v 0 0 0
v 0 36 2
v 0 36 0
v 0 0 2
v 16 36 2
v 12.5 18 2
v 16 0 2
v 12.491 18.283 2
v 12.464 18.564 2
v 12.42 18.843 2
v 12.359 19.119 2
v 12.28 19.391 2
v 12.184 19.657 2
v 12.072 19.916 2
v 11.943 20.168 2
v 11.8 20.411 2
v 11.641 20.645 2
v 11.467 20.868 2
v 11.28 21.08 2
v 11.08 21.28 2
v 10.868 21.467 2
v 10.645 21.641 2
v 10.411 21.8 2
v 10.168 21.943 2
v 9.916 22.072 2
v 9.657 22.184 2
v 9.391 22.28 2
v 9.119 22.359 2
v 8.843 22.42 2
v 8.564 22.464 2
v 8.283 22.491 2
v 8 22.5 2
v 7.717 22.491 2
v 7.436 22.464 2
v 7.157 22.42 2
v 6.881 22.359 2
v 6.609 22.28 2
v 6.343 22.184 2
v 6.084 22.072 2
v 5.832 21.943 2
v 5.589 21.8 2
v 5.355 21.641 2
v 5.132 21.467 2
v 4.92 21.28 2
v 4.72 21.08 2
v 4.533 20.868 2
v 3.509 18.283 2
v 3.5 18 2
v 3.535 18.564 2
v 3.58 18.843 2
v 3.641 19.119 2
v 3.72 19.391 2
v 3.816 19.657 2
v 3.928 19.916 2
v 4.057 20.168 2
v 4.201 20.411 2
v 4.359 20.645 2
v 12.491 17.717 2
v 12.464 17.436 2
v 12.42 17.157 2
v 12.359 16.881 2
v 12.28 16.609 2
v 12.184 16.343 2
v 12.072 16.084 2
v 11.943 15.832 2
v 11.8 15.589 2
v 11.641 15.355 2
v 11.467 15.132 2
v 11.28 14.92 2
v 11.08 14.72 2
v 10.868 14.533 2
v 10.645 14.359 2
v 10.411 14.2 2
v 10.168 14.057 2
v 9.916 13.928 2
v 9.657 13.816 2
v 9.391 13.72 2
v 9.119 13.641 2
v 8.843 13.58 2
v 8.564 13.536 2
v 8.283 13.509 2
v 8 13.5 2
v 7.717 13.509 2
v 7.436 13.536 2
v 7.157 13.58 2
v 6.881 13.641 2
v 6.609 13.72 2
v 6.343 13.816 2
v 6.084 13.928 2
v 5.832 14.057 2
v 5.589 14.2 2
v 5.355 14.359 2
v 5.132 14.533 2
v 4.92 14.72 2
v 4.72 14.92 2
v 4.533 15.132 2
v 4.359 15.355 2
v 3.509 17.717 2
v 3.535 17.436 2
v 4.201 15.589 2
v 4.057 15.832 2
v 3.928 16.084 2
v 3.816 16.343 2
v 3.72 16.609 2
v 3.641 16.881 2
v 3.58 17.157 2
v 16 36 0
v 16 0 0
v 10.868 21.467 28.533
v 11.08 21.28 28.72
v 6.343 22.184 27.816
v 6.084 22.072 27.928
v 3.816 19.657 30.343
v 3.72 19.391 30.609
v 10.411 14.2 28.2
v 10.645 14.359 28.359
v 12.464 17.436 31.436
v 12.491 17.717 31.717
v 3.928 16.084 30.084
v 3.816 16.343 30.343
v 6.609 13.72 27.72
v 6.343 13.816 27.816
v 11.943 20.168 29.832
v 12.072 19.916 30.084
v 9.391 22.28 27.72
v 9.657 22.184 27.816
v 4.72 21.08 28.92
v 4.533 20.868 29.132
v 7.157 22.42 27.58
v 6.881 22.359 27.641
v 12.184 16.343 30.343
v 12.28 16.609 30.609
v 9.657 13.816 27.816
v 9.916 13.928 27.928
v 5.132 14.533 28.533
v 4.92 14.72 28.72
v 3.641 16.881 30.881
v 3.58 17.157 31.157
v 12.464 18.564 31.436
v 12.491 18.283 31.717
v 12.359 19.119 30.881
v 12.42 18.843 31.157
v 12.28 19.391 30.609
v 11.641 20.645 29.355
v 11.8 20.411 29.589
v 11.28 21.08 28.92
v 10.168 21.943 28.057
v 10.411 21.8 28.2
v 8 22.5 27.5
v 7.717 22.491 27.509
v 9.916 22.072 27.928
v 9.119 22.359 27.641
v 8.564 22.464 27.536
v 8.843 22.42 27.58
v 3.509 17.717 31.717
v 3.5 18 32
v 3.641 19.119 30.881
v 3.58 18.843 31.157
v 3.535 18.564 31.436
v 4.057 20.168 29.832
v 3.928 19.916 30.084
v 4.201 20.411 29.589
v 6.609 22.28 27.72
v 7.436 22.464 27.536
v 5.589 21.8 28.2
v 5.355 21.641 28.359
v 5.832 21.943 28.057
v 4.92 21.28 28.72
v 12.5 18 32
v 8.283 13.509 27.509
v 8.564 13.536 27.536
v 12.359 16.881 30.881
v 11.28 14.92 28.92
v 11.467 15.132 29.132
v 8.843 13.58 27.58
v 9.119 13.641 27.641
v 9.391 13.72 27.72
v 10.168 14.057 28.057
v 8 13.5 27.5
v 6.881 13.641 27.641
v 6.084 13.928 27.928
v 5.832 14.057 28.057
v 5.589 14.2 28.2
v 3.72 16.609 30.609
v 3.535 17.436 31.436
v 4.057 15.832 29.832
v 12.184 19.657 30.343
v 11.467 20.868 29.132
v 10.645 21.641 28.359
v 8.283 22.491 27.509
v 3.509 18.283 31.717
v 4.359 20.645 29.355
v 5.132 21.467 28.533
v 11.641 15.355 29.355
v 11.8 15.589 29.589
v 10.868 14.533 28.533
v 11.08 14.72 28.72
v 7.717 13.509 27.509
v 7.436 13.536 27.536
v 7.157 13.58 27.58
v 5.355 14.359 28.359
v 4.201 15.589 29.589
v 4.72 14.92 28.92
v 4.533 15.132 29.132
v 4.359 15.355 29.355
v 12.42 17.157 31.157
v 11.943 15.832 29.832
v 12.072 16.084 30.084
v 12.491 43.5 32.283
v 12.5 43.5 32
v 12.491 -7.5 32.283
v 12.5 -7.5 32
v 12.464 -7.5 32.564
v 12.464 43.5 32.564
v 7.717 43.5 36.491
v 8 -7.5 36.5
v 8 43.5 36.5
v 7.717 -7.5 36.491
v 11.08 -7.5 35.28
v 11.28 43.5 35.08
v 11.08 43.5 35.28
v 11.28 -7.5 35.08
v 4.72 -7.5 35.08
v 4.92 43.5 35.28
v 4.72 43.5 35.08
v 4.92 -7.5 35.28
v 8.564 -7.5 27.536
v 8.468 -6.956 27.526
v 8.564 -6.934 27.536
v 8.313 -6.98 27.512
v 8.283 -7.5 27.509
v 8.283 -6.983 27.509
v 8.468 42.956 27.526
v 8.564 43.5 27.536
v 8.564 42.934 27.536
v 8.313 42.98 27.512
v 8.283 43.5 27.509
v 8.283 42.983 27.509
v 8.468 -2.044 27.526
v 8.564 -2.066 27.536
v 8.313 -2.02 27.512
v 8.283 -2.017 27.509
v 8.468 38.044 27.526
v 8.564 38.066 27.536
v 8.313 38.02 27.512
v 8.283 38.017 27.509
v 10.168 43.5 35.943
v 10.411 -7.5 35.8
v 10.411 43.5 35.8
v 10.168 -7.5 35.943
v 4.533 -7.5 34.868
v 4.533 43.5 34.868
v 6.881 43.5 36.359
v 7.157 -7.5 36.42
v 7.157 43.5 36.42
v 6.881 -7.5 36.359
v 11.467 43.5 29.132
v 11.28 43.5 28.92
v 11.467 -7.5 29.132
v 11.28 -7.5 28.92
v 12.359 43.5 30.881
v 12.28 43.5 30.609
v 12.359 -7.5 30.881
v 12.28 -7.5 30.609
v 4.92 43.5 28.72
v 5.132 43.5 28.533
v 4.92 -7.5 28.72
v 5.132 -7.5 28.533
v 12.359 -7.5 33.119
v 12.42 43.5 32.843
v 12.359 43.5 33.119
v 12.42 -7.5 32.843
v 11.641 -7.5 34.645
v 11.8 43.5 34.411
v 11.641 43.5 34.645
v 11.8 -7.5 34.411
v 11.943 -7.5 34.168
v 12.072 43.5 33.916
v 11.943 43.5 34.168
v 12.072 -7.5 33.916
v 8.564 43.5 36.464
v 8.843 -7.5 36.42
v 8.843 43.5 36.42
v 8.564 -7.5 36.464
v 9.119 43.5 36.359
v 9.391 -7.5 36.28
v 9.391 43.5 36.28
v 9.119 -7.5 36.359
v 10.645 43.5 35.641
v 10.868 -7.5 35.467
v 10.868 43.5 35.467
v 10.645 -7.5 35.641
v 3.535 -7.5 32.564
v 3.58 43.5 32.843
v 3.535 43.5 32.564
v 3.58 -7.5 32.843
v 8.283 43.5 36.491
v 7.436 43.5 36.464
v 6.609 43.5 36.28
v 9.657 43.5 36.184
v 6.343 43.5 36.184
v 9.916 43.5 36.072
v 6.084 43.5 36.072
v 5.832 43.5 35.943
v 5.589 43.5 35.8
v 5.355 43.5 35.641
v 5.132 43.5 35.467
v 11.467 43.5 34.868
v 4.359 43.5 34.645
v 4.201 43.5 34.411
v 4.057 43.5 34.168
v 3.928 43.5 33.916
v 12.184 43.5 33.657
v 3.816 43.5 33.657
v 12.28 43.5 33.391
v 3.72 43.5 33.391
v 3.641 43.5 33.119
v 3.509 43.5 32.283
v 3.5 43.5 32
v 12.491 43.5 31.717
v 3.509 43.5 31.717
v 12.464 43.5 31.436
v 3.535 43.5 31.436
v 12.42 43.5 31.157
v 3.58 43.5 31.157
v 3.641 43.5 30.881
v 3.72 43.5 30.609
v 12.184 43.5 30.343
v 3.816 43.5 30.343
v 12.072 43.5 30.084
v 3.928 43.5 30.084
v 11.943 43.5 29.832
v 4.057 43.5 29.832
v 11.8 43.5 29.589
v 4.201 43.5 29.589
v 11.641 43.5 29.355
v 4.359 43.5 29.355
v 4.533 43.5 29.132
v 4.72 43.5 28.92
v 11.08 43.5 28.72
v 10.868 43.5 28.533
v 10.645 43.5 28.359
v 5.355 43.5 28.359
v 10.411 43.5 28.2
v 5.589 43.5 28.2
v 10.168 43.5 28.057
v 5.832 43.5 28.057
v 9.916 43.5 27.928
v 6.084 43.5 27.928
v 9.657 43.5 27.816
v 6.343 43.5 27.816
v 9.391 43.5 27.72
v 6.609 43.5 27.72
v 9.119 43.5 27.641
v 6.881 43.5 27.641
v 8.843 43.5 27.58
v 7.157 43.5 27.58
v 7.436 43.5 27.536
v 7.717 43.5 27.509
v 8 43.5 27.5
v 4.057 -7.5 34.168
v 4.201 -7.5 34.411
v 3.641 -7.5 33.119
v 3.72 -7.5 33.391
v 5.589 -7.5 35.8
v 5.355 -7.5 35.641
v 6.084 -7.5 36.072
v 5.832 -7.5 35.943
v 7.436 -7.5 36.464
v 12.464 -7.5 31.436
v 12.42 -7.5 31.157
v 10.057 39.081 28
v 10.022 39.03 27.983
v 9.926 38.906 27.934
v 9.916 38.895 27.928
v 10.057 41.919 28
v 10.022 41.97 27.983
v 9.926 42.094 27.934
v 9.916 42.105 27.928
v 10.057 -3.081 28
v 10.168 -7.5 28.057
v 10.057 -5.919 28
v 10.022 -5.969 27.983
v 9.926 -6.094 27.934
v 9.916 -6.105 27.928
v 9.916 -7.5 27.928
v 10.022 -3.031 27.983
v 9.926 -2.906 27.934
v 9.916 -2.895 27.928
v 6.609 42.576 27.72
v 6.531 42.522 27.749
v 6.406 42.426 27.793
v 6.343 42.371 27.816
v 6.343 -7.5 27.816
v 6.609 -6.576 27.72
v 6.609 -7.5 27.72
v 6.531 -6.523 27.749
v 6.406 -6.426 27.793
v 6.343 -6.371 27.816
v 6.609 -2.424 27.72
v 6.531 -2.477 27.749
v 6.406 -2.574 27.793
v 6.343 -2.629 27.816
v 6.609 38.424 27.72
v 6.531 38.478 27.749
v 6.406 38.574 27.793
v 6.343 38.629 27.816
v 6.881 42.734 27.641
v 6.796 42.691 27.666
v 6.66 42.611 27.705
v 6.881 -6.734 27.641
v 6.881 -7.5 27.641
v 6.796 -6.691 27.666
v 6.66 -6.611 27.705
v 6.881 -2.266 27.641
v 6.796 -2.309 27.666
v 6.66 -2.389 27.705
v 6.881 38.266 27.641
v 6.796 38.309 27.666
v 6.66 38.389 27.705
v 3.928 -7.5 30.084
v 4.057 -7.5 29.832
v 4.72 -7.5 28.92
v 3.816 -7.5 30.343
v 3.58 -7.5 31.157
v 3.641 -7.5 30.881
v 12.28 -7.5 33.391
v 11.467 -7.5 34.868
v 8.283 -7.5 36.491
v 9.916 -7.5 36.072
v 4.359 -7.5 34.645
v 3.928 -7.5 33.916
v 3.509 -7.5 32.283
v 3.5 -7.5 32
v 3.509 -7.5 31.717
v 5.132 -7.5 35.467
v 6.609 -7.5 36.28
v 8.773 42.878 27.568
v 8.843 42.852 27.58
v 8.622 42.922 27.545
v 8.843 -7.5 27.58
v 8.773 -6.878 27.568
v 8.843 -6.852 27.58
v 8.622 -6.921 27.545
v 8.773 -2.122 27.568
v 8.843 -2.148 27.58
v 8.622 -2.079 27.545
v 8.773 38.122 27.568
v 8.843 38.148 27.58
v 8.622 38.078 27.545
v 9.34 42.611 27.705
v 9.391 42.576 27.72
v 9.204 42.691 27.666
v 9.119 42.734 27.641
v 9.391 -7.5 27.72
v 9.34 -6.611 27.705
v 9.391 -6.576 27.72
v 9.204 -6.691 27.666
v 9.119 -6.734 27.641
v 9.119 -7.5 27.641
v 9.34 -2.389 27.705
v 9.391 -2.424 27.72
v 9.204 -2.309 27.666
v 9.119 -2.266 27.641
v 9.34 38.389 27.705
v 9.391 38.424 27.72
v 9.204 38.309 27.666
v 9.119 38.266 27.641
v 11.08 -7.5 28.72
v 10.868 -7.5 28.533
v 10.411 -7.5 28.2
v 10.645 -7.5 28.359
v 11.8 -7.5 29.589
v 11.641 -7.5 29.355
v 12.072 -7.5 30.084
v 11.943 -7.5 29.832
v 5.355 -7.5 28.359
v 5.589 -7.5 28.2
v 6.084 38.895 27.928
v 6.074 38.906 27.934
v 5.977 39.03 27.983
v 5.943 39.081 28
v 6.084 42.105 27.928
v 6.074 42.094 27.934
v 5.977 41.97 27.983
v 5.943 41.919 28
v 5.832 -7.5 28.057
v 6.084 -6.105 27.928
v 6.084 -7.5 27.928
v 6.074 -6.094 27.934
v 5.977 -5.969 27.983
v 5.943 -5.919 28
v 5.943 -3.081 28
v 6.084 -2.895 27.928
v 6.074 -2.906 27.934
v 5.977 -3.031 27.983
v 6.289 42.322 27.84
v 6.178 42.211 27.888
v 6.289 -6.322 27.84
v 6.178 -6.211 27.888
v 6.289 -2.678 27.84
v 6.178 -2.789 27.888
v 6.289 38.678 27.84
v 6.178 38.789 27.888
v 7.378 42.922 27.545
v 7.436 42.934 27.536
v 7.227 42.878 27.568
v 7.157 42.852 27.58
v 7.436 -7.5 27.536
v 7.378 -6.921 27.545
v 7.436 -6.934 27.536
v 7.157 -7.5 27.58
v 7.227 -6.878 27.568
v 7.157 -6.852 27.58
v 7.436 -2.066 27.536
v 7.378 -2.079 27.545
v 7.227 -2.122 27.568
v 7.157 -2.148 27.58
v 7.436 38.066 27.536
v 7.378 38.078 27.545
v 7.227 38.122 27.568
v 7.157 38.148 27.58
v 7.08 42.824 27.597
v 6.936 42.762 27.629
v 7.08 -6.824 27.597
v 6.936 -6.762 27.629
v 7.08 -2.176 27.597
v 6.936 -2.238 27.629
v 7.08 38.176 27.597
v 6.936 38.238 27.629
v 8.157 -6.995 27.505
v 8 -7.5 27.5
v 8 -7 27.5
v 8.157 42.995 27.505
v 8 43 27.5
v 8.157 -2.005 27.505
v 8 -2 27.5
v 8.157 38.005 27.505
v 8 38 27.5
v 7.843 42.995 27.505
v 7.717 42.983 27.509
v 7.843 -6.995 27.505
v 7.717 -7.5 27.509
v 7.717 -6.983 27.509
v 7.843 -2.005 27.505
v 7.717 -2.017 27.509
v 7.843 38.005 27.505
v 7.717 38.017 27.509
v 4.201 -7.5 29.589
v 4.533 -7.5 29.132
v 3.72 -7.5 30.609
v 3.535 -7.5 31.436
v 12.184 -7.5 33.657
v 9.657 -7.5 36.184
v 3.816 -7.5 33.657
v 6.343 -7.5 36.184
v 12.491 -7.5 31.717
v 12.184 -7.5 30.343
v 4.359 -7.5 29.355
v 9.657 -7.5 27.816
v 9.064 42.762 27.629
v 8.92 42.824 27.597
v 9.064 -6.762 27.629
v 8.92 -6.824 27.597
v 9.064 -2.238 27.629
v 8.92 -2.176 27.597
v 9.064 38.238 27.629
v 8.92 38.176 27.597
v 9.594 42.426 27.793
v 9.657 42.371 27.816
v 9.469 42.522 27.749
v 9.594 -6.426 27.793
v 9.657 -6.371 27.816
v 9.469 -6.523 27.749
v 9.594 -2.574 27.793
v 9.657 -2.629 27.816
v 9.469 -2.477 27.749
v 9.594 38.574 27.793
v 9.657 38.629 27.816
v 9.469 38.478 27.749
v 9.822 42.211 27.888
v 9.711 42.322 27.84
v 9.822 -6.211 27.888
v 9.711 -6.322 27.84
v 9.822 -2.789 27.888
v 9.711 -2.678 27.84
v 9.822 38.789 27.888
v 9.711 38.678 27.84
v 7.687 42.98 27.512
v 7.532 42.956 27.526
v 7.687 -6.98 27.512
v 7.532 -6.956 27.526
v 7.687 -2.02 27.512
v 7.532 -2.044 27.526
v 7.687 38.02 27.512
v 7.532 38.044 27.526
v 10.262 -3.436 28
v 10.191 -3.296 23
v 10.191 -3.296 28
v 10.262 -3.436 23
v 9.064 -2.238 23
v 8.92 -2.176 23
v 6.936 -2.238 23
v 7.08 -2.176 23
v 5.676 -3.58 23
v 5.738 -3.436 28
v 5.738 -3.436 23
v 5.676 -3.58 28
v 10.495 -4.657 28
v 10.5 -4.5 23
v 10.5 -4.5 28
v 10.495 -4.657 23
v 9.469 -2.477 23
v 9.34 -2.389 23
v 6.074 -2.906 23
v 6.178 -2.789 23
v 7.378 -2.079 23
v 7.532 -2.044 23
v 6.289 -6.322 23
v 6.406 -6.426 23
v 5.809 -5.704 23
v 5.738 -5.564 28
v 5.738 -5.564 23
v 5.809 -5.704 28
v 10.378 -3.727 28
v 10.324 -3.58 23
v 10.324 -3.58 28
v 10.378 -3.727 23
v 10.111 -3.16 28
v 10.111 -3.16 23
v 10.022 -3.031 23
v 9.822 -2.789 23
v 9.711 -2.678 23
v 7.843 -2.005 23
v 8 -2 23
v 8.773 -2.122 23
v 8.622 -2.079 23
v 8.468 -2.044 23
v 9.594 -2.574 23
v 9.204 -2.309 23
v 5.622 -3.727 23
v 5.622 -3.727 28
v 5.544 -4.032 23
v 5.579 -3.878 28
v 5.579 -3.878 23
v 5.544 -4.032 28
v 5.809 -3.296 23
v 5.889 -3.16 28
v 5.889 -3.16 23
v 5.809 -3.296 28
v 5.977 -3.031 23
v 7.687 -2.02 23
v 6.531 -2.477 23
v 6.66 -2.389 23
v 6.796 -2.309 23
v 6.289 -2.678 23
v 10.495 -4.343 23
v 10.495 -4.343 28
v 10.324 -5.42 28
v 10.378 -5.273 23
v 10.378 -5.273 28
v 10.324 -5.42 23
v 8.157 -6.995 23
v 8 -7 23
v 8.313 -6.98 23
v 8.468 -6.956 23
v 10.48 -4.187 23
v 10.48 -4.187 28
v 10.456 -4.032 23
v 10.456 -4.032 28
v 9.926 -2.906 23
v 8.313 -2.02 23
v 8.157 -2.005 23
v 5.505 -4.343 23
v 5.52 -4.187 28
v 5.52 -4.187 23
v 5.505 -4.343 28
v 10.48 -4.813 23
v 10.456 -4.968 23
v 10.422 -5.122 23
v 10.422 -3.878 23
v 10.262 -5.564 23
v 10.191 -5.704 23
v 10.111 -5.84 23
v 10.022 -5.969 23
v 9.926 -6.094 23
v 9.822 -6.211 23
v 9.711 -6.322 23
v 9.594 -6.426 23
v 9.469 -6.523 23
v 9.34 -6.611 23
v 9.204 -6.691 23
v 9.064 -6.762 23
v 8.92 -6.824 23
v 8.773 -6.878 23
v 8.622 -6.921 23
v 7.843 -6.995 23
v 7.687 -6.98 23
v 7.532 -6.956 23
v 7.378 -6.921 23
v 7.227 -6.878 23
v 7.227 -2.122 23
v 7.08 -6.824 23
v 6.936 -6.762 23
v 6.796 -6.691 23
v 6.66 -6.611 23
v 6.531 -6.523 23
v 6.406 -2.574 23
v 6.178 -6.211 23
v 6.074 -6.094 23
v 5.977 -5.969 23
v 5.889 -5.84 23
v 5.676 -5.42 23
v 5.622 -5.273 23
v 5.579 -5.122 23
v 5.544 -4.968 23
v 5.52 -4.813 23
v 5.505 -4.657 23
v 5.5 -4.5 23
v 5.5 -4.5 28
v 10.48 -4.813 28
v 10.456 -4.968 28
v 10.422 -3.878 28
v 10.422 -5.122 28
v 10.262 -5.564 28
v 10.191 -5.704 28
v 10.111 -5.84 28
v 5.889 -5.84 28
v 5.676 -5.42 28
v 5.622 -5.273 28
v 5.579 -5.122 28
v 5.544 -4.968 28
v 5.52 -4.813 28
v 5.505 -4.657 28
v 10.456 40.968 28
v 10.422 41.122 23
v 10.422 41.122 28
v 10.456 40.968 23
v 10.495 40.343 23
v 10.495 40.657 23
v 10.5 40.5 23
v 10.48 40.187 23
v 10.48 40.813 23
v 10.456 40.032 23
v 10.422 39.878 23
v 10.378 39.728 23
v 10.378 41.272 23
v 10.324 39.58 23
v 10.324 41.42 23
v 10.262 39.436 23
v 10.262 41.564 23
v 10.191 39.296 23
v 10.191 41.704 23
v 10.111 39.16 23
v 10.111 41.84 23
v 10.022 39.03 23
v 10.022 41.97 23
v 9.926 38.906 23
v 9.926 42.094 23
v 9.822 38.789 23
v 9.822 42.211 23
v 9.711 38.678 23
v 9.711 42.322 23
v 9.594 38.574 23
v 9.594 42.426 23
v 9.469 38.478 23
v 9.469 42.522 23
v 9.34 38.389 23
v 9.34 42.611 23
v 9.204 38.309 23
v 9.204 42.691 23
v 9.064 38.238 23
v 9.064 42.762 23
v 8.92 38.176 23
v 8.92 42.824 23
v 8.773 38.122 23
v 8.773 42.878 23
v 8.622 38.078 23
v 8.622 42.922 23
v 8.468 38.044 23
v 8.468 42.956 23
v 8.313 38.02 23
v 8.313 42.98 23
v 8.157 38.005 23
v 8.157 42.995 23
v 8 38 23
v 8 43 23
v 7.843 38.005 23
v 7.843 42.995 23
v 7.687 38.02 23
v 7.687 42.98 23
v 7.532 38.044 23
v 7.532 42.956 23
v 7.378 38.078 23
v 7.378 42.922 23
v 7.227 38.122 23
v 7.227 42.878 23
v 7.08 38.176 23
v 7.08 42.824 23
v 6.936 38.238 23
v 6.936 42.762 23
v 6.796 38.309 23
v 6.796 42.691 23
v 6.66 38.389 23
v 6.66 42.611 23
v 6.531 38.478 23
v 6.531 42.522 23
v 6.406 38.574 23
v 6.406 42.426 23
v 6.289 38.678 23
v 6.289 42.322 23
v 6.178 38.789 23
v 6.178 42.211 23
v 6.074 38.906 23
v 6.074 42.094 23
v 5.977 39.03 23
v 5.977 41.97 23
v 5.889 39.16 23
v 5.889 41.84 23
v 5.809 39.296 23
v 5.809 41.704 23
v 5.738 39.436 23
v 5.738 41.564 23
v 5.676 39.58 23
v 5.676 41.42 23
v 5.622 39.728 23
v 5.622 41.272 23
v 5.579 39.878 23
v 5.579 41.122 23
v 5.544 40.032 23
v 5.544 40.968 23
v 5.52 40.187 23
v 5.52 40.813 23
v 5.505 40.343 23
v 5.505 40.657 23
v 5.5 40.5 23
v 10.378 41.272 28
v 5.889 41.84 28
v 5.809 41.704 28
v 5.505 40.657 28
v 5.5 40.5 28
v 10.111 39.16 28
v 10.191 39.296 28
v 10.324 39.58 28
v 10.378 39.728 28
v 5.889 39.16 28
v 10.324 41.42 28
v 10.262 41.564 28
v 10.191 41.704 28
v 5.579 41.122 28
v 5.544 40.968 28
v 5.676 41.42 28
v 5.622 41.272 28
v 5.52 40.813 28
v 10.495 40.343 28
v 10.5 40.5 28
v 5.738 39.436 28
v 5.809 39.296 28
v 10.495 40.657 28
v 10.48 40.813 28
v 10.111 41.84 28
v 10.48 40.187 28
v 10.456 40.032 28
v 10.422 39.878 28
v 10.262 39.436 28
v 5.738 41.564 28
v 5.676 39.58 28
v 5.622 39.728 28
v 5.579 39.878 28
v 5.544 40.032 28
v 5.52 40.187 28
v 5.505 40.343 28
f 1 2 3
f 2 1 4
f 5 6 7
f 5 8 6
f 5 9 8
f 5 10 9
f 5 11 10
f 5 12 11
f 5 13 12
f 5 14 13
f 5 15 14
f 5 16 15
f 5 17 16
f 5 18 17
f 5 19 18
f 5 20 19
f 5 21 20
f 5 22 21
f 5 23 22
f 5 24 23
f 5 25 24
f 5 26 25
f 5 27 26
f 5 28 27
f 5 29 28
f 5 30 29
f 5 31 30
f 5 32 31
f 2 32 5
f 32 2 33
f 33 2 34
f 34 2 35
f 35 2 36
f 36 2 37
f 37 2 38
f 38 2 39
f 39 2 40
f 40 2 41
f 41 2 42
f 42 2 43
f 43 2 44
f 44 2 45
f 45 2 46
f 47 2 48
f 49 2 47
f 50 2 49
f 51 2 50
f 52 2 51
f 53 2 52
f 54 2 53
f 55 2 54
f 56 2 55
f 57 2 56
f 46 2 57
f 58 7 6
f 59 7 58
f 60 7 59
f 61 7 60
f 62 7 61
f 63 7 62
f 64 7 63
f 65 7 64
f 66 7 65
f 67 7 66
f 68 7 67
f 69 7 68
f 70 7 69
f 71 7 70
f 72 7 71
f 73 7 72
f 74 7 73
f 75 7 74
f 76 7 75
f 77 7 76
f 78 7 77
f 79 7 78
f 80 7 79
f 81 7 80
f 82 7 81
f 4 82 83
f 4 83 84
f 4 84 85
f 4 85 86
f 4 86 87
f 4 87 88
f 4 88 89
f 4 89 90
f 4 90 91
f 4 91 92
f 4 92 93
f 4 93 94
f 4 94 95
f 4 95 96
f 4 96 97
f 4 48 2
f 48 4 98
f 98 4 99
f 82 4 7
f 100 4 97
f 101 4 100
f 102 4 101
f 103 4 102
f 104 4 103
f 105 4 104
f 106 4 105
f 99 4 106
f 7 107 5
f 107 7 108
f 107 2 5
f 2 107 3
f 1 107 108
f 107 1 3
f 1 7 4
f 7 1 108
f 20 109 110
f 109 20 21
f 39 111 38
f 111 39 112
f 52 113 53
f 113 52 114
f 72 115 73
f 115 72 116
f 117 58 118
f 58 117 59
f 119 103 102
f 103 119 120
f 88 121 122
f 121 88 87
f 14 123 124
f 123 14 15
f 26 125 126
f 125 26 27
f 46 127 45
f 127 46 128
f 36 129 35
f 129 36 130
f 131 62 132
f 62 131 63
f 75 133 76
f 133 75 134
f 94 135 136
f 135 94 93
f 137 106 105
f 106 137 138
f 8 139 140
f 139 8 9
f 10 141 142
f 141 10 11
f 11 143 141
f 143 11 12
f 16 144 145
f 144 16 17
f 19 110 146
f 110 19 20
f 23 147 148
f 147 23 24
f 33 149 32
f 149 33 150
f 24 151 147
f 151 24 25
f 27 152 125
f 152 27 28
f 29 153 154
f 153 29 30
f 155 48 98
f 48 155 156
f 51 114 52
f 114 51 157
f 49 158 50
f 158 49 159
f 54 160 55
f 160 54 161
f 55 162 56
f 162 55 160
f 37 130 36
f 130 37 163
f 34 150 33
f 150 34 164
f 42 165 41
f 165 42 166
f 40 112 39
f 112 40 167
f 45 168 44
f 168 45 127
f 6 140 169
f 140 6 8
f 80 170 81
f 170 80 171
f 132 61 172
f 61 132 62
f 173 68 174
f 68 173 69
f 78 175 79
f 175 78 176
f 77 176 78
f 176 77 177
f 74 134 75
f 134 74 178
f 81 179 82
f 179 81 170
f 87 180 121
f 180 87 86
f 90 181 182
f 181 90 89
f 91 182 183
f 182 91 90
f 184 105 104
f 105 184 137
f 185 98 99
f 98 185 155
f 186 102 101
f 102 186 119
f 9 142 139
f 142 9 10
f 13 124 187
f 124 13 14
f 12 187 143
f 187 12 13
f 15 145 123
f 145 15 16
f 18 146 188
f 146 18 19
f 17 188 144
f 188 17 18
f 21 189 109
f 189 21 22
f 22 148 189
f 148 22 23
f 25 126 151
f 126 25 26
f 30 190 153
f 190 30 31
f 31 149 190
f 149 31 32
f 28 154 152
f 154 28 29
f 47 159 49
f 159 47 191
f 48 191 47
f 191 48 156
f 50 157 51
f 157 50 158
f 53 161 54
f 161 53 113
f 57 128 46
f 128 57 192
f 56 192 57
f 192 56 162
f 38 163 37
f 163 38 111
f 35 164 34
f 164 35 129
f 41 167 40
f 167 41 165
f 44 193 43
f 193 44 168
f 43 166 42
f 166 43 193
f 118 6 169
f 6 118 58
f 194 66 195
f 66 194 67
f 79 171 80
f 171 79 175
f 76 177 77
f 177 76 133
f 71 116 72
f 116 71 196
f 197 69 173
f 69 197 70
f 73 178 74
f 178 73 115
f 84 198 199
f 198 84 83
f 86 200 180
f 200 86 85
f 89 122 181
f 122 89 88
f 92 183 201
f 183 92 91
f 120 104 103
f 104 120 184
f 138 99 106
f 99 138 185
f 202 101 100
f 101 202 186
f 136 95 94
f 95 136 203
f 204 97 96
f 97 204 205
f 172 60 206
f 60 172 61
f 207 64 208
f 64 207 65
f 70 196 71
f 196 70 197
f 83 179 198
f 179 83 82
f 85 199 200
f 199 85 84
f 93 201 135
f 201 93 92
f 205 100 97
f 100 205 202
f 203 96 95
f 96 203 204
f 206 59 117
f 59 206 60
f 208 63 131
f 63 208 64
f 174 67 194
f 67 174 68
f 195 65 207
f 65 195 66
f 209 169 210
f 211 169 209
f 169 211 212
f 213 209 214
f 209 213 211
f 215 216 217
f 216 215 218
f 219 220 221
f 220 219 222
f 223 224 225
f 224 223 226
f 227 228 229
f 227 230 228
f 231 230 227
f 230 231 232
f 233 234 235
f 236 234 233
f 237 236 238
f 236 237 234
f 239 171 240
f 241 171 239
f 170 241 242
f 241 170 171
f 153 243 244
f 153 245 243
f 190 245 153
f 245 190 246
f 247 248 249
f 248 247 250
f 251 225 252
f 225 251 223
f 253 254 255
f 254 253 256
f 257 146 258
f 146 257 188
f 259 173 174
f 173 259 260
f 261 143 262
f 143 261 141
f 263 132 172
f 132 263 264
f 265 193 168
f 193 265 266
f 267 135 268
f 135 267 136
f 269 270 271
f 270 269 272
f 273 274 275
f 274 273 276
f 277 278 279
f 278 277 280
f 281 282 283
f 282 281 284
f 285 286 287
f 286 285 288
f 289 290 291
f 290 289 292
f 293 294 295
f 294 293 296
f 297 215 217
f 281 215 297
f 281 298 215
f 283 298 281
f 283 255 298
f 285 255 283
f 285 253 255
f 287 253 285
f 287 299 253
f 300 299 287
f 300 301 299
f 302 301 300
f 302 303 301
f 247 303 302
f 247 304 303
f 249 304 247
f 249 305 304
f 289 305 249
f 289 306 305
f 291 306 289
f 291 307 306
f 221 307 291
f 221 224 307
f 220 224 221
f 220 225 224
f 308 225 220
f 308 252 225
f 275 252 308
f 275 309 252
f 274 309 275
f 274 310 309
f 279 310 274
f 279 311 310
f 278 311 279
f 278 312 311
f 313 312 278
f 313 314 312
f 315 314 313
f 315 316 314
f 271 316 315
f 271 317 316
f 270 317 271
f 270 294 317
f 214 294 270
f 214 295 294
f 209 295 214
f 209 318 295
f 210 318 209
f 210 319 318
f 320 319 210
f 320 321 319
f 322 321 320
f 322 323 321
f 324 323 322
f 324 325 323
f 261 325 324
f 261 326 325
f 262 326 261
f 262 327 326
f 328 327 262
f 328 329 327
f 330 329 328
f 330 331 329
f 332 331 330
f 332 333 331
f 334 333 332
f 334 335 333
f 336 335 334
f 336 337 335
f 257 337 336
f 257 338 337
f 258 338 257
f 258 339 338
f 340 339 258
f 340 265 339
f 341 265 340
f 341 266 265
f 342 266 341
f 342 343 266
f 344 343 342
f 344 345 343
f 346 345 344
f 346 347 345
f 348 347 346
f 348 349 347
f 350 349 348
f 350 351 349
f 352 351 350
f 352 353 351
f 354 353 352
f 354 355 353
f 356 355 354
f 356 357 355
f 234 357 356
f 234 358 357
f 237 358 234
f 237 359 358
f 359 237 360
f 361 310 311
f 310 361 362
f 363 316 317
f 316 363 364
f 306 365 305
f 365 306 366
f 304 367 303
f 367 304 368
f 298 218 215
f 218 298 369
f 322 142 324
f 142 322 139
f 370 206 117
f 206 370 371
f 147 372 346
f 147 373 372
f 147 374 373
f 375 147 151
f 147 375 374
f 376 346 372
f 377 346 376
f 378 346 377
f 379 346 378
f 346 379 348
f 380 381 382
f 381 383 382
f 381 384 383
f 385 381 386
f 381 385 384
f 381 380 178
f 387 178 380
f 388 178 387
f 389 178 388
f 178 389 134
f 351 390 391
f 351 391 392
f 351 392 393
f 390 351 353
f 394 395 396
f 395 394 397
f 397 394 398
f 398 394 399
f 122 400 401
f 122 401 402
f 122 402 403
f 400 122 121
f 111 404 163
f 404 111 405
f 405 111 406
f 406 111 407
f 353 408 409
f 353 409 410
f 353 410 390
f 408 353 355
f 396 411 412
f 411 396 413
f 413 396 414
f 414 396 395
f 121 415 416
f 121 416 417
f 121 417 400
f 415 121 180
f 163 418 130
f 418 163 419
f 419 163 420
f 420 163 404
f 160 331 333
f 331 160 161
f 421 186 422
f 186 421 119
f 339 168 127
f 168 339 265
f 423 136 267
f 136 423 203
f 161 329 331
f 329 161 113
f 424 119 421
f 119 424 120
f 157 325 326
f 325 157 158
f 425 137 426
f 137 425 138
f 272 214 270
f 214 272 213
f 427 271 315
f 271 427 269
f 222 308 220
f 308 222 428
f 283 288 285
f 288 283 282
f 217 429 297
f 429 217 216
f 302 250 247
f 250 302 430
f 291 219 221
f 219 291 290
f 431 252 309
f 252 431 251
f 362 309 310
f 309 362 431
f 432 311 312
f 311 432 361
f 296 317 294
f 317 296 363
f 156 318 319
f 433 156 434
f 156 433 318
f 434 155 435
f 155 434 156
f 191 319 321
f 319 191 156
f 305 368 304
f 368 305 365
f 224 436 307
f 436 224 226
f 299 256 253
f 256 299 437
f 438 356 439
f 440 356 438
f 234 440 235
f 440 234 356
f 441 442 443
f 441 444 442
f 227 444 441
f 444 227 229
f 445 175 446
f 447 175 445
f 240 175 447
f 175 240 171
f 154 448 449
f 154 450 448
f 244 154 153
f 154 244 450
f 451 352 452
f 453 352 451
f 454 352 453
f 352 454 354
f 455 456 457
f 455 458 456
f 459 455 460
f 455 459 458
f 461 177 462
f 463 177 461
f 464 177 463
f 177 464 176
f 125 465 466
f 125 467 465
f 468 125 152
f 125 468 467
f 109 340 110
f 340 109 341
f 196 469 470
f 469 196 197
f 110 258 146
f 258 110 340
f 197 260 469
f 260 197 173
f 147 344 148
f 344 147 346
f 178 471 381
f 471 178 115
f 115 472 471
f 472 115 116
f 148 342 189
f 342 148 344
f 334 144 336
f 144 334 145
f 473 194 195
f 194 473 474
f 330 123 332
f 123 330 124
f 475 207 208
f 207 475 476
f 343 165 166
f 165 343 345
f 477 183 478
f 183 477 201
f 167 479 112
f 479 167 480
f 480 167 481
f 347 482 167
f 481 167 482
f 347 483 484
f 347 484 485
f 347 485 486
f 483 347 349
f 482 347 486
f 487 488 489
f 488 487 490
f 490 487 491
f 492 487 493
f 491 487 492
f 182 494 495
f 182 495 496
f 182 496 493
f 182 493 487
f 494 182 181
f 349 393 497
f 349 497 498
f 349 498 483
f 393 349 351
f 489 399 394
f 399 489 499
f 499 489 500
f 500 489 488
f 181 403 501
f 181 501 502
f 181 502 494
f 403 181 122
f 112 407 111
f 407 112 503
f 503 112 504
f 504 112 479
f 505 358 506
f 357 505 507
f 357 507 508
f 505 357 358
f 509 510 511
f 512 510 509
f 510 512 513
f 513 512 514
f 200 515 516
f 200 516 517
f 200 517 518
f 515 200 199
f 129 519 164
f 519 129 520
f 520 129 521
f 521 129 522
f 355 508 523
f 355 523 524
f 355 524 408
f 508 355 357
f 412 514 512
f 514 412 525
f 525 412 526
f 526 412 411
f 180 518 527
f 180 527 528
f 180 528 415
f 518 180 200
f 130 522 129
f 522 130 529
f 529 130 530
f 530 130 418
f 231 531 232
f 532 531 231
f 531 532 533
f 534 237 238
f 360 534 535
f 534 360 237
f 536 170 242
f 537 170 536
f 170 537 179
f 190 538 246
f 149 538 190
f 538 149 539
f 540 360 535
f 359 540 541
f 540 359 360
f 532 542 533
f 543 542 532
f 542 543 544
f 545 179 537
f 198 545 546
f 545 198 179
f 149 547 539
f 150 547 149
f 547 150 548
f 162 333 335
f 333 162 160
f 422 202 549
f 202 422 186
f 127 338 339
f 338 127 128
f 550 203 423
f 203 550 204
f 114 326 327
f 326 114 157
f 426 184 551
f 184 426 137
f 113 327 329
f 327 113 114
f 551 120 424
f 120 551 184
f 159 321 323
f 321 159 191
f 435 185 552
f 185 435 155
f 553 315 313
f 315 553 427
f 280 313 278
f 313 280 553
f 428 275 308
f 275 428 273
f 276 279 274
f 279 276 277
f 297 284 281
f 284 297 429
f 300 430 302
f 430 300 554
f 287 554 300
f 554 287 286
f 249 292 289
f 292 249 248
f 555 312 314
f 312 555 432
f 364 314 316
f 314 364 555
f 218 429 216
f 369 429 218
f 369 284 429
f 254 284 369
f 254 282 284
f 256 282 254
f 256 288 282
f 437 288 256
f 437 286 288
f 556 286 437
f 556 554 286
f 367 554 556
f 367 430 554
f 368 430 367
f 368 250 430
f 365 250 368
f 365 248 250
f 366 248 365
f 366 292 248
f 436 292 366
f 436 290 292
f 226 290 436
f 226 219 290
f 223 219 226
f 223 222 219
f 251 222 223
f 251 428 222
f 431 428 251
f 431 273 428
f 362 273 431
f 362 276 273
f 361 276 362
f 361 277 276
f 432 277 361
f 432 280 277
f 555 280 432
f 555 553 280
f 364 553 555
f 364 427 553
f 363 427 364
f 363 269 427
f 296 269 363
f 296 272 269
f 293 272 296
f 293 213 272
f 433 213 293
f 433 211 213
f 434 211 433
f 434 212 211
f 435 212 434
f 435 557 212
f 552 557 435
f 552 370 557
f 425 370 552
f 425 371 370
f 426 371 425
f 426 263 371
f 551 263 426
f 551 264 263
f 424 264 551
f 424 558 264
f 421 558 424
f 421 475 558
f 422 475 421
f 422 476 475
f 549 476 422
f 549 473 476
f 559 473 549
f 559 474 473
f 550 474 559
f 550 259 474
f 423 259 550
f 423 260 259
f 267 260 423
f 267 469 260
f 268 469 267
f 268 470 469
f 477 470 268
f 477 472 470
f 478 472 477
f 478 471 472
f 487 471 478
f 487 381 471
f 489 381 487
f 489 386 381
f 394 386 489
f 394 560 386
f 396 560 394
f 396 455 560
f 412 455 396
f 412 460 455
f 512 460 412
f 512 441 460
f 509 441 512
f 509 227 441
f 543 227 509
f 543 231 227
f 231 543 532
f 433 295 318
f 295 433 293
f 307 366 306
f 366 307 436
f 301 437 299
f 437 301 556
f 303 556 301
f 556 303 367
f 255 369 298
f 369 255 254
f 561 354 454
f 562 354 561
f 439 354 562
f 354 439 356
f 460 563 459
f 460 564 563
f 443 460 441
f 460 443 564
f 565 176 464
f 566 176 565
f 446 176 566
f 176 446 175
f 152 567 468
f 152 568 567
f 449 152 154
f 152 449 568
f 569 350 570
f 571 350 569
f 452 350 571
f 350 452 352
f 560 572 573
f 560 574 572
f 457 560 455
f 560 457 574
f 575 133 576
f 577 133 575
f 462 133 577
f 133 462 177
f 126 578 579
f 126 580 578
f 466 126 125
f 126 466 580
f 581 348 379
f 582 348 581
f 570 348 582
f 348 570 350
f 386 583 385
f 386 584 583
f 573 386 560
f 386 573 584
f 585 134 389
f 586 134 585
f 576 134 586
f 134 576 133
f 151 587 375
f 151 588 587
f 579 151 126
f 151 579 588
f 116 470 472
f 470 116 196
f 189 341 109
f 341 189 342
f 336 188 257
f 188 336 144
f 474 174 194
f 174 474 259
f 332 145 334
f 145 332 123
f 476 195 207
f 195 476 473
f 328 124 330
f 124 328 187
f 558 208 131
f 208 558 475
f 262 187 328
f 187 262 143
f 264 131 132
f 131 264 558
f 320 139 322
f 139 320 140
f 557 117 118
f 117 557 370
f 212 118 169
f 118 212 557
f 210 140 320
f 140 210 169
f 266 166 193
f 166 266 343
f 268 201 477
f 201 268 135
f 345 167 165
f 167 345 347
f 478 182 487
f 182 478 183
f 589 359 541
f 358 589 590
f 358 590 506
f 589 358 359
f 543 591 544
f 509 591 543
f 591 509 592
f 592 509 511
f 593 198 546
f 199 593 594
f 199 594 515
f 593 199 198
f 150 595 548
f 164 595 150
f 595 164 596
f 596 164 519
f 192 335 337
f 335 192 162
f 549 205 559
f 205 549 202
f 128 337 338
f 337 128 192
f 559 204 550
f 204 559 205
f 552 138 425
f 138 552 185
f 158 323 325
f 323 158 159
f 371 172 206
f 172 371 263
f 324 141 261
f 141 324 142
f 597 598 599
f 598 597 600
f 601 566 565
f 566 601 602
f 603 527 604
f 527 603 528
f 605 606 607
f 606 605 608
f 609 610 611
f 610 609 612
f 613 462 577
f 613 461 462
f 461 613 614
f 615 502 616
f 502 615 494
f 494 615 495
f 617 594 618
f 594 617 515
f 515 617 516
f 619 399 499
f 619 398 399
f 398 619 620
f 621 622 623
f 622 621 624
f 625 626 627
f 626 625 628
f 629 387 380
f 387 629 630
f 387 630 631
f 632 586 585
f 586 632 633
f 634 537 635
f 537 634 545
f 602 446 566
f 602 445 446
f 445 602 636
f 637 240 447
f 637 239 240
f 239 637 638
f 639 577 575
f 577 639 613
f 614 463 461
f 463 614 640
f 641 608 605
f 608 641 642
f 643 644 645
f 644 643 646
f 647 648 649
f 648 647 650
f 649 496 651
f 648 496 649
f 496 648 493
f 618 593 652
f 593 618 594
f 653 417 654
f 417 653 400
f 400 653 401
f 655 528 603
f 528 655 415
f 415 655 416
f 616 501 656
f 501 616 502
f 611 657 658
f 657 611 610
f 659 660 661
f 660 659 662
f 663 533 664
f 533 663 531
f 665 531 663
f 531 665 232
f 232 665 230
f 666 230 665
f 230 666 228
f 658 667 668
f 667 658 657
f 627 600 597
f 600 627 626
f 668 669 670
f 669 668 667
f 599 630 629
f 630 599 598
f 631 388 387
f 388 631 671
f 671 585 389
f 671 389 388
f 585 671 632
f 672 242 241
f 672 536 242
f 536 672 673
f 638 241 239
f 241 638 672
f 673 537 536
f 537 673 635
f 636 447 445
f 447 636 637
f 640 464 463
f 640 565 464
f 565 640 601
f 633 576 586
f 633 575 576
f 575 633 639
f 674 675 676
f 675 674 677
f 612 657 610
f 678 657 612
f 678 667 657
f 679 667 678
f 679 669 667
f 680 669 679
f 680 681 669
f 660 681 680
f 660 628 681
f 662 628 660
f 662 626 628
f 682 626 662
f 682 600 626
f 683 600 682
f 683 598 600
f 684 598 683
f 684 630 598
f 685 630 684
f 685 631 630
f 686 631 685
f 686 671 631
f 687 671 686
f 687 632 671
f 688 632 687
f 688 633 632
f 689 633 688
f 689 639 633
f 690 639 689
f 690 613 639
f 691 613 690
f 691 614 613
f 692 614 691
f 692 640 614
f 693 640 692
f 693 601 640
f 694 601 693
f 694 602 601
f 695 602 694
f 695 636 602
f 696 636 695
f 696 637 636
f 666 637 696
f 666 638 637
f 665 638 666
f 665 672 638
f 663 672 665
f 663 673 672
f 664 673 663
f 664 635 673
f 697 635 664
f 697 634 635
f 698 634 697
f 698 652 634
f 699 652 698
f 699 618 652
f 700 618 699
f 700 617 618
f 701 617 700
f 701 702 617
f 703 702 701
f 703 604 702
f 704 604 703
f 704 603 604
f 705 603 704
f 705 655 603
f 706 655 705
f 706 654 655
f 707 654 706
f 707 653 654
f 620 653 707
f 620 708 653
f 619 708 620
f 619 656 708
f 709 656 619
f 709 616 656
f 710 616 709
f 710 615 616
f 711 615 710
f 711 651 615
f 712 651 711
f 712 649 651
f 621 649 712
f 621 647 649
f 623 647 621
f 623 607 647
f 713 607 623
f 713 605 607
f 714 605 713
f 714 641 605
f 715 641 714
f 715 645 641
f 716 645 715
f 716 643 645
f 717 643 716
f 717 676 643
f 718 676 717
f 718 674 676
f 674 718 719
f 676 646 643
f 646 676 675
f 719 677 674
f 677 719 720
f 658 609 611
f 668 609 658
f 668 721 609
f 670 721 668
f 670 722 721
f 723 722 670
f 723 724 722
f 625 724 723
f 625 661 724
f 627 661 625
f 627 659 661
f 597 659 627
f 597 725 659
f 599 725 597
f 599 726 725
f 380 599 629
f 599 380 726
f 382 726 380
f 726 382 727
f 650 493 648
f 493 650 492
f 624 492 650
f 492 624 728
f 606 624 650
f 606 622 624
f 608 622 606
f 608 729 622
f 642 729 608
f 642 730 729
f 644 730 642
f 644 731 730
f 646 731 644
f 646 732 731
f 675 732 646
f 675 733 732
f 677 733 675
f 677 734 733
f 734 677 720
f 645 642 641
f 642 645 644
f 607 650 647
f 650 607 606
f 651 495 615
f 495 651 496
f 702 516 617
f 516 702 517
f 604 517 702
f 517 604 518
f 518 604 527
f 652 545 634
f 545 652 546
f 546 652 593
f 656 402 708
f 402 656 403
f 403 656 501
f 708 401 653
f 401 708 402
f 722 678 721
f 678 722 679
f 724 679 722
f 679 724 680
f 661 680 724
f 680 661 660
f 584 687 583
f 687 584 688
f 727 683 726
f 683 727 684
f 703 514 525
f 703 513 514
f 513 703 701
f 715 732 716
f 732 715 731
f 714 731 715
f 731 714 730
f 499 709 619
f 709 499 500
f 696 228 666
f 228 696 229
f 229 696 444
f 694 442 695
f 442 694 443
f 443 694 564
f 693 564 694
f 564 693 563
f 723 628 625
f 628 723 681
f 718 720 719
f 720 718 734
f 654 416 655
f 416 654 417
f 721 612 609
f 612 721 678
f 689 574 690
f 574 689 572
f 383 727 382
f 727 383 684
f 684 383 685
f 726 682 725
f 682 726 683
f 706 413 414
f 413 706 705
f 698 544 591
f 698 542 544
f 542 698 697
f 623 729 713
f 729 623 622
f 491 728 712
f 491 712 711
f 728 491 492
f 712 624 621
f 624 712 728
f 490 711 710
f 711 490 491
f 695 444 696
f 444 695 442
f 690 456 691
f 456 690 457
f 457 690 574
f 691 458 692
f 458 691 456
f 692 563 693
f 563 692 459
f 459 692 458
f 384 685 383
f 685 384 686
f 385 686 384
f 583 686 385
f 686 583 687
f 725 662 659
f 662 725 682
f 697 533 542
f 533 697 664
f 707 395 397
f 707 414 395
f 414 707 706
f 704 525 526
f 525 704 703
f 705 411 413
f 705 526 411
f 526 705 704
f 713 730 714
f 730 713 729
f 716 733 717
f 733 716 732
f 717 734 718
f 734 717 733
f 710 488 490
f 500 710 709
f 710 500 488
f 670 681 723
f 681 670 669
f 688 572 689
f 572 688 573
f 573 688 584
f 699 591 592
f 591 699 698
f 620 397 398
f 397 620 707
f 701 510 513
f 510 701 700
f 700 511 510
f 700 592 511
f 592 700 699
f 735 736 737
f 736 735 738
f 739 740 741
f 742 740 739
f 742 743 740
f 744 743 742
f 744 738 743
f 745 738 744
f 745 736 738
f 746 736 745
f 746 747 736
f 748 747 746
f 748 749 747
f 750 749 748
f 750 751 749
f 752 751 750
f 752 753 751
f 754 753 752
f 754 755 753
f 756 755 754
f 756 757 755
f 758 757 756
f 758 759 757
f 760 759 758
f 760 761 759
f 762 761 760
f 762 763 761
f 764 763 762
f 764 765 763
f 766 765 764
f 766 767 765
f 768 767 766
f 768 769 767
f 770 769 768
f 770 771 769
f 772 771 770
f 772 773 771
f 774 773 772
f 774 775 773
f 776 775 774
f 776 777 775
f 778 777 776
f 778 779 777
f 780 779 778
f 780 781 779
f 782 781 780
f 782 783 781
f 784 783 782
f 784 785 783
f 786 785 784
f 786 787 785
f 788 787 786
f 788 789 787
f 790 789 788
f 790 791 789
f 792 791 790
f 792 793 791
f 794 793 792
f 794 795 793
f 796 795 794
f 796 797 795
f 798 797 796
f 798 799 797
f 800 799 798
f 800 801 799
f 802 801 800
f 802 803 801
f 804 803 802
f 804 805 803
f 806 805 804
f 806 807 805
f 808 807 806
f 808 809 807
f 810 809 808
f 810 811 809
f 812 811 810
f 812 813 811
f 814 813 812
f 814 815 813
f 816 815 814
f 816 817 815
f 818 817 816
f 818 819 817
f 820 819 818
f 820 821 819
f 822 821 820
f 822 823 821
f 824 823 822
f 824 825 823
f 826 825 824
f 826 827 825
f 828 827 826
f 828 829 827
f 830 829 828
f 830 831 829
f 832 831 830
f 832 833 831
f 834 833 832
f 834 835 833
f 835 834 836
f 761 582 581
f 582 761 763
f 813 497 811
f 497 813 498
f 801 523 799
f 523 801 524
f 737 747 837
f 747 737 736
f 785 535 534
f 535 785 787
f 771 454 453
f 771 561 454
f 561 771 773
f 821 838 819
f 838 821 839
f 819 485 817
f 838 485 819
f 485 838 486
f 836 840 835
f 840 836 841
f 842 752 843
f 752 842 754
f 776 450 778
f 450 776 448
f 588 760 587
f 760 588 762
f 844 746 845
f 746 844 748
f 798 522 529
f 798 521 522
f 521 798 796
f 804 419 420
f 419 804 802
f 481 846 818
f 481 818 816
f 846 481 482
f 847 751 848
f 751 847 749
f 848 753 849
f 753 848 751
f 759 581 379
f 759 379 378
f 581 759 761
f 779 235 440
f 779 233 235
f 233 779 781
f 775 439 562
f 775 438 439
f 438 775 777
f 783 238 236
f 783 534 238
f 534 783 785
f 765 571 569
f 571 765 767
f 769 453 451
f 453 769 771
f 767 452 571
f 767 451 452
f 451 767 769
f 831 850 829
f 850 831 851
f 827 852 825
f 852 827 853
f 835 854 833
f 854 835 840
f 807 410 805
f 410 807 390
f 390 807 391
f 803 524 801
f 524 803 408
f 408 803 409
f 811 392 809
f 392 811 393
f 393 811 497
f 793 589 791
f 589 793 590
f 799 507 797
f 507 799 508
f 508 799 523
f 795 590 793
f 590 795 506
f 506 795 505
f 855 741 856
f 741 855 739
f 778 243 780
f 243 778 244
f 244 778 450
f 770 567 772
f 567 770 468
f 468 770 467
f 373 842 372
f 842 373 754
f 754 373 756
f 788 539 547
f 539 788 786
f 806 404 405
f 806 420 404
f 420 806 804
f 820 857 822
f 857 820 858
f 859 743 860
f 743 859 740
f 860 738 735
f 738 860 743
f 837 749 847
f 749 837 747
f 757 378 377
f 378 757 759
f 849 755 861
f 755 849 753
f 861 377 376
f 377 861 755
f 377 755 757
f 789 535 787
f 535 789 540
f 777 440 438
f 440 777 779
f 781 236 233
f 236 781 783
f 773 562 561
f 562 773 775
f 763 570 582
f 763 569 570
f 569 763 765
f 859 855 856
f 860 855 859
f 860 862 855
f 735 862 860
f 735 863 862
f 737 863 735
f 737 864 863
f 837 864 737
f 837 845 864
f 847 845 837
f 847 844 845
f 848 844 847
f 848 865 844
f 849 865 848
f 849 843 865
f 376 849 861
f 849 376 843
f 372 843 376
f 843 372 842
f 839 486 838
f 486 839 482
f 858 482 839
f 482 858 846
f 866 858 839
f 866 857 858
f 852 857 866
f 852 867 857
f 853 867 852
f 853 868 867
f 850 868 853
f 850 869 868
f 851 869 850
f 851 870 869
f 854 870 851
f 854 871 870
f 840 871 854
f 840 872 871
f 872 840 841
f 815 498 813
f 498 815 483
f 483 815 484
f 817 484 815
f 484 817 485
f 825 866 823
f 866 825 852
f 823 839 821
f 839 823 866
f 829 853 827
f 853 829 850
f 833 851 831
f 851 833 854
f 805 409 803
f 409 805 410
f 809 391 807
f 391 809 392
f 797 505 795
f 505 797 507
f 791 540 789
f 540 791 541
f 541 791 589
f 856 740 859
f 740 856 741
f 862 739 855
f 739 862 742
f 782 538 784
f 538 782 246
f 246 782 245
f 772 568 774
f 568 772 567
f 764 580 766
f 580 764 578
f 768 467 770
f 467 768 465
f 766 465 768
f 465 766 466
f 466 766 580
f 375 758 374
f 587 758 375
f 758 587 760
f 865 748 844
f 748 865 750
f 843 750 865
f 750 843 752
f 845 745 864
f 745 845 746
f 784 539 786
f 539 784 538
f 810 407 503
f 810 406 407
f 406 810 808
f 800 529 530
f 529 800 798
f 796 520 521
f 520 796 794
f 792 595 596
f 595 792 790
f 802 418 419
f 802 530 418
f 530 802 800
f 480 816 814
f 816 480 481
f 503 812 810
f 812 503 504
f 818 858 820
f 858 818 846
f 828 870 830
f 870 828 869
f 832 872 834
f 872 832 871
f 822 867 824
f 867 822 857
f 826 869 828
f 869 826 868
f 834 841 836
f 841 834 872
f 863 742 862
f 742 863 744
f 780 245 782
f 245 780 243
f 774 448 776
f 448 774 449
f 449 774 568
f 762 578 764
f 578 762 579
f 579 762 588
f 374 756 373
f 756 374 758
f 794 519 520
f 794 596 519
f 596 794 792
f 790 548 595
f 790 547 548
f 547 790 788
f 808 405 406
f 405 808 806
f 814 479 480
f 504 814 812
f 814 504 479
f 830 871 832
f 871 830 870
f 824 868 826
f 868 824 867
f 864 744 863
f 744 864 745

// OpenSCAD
BASE_X = 16;
BASE_Y = 36;

DOWN_SIZE_Y = 30;


union() {
    cube([BASE_X, BASE_Y, 2]);
    translate([BASE_X/2, BASE_Y/2, 2]) {
        cylinder(h=DOWN_SIZE_Y, d=9, $fn=100);
    }
    translate([BASE_X/2, BASE_Y + 15 / 2, DOWN_SIZE_Y +2]) {
        rotate([90, 0, 0]) cylinder(d=9, h=BASE_Y + 15, $fn=100);
    }

    translate([BASE_X/2, -7 + 2.5, DOWN_SIZE_Y - 7]) {
        cylinder(h=5, d=5, $fn=100);
    }

    translate([BASE_X/2, BASE_Y + (15/2) - 3  , DOWN_SIZE_Y - 7]) {
        cylinder(h=5, d=5, $fn=100);
    }
}
